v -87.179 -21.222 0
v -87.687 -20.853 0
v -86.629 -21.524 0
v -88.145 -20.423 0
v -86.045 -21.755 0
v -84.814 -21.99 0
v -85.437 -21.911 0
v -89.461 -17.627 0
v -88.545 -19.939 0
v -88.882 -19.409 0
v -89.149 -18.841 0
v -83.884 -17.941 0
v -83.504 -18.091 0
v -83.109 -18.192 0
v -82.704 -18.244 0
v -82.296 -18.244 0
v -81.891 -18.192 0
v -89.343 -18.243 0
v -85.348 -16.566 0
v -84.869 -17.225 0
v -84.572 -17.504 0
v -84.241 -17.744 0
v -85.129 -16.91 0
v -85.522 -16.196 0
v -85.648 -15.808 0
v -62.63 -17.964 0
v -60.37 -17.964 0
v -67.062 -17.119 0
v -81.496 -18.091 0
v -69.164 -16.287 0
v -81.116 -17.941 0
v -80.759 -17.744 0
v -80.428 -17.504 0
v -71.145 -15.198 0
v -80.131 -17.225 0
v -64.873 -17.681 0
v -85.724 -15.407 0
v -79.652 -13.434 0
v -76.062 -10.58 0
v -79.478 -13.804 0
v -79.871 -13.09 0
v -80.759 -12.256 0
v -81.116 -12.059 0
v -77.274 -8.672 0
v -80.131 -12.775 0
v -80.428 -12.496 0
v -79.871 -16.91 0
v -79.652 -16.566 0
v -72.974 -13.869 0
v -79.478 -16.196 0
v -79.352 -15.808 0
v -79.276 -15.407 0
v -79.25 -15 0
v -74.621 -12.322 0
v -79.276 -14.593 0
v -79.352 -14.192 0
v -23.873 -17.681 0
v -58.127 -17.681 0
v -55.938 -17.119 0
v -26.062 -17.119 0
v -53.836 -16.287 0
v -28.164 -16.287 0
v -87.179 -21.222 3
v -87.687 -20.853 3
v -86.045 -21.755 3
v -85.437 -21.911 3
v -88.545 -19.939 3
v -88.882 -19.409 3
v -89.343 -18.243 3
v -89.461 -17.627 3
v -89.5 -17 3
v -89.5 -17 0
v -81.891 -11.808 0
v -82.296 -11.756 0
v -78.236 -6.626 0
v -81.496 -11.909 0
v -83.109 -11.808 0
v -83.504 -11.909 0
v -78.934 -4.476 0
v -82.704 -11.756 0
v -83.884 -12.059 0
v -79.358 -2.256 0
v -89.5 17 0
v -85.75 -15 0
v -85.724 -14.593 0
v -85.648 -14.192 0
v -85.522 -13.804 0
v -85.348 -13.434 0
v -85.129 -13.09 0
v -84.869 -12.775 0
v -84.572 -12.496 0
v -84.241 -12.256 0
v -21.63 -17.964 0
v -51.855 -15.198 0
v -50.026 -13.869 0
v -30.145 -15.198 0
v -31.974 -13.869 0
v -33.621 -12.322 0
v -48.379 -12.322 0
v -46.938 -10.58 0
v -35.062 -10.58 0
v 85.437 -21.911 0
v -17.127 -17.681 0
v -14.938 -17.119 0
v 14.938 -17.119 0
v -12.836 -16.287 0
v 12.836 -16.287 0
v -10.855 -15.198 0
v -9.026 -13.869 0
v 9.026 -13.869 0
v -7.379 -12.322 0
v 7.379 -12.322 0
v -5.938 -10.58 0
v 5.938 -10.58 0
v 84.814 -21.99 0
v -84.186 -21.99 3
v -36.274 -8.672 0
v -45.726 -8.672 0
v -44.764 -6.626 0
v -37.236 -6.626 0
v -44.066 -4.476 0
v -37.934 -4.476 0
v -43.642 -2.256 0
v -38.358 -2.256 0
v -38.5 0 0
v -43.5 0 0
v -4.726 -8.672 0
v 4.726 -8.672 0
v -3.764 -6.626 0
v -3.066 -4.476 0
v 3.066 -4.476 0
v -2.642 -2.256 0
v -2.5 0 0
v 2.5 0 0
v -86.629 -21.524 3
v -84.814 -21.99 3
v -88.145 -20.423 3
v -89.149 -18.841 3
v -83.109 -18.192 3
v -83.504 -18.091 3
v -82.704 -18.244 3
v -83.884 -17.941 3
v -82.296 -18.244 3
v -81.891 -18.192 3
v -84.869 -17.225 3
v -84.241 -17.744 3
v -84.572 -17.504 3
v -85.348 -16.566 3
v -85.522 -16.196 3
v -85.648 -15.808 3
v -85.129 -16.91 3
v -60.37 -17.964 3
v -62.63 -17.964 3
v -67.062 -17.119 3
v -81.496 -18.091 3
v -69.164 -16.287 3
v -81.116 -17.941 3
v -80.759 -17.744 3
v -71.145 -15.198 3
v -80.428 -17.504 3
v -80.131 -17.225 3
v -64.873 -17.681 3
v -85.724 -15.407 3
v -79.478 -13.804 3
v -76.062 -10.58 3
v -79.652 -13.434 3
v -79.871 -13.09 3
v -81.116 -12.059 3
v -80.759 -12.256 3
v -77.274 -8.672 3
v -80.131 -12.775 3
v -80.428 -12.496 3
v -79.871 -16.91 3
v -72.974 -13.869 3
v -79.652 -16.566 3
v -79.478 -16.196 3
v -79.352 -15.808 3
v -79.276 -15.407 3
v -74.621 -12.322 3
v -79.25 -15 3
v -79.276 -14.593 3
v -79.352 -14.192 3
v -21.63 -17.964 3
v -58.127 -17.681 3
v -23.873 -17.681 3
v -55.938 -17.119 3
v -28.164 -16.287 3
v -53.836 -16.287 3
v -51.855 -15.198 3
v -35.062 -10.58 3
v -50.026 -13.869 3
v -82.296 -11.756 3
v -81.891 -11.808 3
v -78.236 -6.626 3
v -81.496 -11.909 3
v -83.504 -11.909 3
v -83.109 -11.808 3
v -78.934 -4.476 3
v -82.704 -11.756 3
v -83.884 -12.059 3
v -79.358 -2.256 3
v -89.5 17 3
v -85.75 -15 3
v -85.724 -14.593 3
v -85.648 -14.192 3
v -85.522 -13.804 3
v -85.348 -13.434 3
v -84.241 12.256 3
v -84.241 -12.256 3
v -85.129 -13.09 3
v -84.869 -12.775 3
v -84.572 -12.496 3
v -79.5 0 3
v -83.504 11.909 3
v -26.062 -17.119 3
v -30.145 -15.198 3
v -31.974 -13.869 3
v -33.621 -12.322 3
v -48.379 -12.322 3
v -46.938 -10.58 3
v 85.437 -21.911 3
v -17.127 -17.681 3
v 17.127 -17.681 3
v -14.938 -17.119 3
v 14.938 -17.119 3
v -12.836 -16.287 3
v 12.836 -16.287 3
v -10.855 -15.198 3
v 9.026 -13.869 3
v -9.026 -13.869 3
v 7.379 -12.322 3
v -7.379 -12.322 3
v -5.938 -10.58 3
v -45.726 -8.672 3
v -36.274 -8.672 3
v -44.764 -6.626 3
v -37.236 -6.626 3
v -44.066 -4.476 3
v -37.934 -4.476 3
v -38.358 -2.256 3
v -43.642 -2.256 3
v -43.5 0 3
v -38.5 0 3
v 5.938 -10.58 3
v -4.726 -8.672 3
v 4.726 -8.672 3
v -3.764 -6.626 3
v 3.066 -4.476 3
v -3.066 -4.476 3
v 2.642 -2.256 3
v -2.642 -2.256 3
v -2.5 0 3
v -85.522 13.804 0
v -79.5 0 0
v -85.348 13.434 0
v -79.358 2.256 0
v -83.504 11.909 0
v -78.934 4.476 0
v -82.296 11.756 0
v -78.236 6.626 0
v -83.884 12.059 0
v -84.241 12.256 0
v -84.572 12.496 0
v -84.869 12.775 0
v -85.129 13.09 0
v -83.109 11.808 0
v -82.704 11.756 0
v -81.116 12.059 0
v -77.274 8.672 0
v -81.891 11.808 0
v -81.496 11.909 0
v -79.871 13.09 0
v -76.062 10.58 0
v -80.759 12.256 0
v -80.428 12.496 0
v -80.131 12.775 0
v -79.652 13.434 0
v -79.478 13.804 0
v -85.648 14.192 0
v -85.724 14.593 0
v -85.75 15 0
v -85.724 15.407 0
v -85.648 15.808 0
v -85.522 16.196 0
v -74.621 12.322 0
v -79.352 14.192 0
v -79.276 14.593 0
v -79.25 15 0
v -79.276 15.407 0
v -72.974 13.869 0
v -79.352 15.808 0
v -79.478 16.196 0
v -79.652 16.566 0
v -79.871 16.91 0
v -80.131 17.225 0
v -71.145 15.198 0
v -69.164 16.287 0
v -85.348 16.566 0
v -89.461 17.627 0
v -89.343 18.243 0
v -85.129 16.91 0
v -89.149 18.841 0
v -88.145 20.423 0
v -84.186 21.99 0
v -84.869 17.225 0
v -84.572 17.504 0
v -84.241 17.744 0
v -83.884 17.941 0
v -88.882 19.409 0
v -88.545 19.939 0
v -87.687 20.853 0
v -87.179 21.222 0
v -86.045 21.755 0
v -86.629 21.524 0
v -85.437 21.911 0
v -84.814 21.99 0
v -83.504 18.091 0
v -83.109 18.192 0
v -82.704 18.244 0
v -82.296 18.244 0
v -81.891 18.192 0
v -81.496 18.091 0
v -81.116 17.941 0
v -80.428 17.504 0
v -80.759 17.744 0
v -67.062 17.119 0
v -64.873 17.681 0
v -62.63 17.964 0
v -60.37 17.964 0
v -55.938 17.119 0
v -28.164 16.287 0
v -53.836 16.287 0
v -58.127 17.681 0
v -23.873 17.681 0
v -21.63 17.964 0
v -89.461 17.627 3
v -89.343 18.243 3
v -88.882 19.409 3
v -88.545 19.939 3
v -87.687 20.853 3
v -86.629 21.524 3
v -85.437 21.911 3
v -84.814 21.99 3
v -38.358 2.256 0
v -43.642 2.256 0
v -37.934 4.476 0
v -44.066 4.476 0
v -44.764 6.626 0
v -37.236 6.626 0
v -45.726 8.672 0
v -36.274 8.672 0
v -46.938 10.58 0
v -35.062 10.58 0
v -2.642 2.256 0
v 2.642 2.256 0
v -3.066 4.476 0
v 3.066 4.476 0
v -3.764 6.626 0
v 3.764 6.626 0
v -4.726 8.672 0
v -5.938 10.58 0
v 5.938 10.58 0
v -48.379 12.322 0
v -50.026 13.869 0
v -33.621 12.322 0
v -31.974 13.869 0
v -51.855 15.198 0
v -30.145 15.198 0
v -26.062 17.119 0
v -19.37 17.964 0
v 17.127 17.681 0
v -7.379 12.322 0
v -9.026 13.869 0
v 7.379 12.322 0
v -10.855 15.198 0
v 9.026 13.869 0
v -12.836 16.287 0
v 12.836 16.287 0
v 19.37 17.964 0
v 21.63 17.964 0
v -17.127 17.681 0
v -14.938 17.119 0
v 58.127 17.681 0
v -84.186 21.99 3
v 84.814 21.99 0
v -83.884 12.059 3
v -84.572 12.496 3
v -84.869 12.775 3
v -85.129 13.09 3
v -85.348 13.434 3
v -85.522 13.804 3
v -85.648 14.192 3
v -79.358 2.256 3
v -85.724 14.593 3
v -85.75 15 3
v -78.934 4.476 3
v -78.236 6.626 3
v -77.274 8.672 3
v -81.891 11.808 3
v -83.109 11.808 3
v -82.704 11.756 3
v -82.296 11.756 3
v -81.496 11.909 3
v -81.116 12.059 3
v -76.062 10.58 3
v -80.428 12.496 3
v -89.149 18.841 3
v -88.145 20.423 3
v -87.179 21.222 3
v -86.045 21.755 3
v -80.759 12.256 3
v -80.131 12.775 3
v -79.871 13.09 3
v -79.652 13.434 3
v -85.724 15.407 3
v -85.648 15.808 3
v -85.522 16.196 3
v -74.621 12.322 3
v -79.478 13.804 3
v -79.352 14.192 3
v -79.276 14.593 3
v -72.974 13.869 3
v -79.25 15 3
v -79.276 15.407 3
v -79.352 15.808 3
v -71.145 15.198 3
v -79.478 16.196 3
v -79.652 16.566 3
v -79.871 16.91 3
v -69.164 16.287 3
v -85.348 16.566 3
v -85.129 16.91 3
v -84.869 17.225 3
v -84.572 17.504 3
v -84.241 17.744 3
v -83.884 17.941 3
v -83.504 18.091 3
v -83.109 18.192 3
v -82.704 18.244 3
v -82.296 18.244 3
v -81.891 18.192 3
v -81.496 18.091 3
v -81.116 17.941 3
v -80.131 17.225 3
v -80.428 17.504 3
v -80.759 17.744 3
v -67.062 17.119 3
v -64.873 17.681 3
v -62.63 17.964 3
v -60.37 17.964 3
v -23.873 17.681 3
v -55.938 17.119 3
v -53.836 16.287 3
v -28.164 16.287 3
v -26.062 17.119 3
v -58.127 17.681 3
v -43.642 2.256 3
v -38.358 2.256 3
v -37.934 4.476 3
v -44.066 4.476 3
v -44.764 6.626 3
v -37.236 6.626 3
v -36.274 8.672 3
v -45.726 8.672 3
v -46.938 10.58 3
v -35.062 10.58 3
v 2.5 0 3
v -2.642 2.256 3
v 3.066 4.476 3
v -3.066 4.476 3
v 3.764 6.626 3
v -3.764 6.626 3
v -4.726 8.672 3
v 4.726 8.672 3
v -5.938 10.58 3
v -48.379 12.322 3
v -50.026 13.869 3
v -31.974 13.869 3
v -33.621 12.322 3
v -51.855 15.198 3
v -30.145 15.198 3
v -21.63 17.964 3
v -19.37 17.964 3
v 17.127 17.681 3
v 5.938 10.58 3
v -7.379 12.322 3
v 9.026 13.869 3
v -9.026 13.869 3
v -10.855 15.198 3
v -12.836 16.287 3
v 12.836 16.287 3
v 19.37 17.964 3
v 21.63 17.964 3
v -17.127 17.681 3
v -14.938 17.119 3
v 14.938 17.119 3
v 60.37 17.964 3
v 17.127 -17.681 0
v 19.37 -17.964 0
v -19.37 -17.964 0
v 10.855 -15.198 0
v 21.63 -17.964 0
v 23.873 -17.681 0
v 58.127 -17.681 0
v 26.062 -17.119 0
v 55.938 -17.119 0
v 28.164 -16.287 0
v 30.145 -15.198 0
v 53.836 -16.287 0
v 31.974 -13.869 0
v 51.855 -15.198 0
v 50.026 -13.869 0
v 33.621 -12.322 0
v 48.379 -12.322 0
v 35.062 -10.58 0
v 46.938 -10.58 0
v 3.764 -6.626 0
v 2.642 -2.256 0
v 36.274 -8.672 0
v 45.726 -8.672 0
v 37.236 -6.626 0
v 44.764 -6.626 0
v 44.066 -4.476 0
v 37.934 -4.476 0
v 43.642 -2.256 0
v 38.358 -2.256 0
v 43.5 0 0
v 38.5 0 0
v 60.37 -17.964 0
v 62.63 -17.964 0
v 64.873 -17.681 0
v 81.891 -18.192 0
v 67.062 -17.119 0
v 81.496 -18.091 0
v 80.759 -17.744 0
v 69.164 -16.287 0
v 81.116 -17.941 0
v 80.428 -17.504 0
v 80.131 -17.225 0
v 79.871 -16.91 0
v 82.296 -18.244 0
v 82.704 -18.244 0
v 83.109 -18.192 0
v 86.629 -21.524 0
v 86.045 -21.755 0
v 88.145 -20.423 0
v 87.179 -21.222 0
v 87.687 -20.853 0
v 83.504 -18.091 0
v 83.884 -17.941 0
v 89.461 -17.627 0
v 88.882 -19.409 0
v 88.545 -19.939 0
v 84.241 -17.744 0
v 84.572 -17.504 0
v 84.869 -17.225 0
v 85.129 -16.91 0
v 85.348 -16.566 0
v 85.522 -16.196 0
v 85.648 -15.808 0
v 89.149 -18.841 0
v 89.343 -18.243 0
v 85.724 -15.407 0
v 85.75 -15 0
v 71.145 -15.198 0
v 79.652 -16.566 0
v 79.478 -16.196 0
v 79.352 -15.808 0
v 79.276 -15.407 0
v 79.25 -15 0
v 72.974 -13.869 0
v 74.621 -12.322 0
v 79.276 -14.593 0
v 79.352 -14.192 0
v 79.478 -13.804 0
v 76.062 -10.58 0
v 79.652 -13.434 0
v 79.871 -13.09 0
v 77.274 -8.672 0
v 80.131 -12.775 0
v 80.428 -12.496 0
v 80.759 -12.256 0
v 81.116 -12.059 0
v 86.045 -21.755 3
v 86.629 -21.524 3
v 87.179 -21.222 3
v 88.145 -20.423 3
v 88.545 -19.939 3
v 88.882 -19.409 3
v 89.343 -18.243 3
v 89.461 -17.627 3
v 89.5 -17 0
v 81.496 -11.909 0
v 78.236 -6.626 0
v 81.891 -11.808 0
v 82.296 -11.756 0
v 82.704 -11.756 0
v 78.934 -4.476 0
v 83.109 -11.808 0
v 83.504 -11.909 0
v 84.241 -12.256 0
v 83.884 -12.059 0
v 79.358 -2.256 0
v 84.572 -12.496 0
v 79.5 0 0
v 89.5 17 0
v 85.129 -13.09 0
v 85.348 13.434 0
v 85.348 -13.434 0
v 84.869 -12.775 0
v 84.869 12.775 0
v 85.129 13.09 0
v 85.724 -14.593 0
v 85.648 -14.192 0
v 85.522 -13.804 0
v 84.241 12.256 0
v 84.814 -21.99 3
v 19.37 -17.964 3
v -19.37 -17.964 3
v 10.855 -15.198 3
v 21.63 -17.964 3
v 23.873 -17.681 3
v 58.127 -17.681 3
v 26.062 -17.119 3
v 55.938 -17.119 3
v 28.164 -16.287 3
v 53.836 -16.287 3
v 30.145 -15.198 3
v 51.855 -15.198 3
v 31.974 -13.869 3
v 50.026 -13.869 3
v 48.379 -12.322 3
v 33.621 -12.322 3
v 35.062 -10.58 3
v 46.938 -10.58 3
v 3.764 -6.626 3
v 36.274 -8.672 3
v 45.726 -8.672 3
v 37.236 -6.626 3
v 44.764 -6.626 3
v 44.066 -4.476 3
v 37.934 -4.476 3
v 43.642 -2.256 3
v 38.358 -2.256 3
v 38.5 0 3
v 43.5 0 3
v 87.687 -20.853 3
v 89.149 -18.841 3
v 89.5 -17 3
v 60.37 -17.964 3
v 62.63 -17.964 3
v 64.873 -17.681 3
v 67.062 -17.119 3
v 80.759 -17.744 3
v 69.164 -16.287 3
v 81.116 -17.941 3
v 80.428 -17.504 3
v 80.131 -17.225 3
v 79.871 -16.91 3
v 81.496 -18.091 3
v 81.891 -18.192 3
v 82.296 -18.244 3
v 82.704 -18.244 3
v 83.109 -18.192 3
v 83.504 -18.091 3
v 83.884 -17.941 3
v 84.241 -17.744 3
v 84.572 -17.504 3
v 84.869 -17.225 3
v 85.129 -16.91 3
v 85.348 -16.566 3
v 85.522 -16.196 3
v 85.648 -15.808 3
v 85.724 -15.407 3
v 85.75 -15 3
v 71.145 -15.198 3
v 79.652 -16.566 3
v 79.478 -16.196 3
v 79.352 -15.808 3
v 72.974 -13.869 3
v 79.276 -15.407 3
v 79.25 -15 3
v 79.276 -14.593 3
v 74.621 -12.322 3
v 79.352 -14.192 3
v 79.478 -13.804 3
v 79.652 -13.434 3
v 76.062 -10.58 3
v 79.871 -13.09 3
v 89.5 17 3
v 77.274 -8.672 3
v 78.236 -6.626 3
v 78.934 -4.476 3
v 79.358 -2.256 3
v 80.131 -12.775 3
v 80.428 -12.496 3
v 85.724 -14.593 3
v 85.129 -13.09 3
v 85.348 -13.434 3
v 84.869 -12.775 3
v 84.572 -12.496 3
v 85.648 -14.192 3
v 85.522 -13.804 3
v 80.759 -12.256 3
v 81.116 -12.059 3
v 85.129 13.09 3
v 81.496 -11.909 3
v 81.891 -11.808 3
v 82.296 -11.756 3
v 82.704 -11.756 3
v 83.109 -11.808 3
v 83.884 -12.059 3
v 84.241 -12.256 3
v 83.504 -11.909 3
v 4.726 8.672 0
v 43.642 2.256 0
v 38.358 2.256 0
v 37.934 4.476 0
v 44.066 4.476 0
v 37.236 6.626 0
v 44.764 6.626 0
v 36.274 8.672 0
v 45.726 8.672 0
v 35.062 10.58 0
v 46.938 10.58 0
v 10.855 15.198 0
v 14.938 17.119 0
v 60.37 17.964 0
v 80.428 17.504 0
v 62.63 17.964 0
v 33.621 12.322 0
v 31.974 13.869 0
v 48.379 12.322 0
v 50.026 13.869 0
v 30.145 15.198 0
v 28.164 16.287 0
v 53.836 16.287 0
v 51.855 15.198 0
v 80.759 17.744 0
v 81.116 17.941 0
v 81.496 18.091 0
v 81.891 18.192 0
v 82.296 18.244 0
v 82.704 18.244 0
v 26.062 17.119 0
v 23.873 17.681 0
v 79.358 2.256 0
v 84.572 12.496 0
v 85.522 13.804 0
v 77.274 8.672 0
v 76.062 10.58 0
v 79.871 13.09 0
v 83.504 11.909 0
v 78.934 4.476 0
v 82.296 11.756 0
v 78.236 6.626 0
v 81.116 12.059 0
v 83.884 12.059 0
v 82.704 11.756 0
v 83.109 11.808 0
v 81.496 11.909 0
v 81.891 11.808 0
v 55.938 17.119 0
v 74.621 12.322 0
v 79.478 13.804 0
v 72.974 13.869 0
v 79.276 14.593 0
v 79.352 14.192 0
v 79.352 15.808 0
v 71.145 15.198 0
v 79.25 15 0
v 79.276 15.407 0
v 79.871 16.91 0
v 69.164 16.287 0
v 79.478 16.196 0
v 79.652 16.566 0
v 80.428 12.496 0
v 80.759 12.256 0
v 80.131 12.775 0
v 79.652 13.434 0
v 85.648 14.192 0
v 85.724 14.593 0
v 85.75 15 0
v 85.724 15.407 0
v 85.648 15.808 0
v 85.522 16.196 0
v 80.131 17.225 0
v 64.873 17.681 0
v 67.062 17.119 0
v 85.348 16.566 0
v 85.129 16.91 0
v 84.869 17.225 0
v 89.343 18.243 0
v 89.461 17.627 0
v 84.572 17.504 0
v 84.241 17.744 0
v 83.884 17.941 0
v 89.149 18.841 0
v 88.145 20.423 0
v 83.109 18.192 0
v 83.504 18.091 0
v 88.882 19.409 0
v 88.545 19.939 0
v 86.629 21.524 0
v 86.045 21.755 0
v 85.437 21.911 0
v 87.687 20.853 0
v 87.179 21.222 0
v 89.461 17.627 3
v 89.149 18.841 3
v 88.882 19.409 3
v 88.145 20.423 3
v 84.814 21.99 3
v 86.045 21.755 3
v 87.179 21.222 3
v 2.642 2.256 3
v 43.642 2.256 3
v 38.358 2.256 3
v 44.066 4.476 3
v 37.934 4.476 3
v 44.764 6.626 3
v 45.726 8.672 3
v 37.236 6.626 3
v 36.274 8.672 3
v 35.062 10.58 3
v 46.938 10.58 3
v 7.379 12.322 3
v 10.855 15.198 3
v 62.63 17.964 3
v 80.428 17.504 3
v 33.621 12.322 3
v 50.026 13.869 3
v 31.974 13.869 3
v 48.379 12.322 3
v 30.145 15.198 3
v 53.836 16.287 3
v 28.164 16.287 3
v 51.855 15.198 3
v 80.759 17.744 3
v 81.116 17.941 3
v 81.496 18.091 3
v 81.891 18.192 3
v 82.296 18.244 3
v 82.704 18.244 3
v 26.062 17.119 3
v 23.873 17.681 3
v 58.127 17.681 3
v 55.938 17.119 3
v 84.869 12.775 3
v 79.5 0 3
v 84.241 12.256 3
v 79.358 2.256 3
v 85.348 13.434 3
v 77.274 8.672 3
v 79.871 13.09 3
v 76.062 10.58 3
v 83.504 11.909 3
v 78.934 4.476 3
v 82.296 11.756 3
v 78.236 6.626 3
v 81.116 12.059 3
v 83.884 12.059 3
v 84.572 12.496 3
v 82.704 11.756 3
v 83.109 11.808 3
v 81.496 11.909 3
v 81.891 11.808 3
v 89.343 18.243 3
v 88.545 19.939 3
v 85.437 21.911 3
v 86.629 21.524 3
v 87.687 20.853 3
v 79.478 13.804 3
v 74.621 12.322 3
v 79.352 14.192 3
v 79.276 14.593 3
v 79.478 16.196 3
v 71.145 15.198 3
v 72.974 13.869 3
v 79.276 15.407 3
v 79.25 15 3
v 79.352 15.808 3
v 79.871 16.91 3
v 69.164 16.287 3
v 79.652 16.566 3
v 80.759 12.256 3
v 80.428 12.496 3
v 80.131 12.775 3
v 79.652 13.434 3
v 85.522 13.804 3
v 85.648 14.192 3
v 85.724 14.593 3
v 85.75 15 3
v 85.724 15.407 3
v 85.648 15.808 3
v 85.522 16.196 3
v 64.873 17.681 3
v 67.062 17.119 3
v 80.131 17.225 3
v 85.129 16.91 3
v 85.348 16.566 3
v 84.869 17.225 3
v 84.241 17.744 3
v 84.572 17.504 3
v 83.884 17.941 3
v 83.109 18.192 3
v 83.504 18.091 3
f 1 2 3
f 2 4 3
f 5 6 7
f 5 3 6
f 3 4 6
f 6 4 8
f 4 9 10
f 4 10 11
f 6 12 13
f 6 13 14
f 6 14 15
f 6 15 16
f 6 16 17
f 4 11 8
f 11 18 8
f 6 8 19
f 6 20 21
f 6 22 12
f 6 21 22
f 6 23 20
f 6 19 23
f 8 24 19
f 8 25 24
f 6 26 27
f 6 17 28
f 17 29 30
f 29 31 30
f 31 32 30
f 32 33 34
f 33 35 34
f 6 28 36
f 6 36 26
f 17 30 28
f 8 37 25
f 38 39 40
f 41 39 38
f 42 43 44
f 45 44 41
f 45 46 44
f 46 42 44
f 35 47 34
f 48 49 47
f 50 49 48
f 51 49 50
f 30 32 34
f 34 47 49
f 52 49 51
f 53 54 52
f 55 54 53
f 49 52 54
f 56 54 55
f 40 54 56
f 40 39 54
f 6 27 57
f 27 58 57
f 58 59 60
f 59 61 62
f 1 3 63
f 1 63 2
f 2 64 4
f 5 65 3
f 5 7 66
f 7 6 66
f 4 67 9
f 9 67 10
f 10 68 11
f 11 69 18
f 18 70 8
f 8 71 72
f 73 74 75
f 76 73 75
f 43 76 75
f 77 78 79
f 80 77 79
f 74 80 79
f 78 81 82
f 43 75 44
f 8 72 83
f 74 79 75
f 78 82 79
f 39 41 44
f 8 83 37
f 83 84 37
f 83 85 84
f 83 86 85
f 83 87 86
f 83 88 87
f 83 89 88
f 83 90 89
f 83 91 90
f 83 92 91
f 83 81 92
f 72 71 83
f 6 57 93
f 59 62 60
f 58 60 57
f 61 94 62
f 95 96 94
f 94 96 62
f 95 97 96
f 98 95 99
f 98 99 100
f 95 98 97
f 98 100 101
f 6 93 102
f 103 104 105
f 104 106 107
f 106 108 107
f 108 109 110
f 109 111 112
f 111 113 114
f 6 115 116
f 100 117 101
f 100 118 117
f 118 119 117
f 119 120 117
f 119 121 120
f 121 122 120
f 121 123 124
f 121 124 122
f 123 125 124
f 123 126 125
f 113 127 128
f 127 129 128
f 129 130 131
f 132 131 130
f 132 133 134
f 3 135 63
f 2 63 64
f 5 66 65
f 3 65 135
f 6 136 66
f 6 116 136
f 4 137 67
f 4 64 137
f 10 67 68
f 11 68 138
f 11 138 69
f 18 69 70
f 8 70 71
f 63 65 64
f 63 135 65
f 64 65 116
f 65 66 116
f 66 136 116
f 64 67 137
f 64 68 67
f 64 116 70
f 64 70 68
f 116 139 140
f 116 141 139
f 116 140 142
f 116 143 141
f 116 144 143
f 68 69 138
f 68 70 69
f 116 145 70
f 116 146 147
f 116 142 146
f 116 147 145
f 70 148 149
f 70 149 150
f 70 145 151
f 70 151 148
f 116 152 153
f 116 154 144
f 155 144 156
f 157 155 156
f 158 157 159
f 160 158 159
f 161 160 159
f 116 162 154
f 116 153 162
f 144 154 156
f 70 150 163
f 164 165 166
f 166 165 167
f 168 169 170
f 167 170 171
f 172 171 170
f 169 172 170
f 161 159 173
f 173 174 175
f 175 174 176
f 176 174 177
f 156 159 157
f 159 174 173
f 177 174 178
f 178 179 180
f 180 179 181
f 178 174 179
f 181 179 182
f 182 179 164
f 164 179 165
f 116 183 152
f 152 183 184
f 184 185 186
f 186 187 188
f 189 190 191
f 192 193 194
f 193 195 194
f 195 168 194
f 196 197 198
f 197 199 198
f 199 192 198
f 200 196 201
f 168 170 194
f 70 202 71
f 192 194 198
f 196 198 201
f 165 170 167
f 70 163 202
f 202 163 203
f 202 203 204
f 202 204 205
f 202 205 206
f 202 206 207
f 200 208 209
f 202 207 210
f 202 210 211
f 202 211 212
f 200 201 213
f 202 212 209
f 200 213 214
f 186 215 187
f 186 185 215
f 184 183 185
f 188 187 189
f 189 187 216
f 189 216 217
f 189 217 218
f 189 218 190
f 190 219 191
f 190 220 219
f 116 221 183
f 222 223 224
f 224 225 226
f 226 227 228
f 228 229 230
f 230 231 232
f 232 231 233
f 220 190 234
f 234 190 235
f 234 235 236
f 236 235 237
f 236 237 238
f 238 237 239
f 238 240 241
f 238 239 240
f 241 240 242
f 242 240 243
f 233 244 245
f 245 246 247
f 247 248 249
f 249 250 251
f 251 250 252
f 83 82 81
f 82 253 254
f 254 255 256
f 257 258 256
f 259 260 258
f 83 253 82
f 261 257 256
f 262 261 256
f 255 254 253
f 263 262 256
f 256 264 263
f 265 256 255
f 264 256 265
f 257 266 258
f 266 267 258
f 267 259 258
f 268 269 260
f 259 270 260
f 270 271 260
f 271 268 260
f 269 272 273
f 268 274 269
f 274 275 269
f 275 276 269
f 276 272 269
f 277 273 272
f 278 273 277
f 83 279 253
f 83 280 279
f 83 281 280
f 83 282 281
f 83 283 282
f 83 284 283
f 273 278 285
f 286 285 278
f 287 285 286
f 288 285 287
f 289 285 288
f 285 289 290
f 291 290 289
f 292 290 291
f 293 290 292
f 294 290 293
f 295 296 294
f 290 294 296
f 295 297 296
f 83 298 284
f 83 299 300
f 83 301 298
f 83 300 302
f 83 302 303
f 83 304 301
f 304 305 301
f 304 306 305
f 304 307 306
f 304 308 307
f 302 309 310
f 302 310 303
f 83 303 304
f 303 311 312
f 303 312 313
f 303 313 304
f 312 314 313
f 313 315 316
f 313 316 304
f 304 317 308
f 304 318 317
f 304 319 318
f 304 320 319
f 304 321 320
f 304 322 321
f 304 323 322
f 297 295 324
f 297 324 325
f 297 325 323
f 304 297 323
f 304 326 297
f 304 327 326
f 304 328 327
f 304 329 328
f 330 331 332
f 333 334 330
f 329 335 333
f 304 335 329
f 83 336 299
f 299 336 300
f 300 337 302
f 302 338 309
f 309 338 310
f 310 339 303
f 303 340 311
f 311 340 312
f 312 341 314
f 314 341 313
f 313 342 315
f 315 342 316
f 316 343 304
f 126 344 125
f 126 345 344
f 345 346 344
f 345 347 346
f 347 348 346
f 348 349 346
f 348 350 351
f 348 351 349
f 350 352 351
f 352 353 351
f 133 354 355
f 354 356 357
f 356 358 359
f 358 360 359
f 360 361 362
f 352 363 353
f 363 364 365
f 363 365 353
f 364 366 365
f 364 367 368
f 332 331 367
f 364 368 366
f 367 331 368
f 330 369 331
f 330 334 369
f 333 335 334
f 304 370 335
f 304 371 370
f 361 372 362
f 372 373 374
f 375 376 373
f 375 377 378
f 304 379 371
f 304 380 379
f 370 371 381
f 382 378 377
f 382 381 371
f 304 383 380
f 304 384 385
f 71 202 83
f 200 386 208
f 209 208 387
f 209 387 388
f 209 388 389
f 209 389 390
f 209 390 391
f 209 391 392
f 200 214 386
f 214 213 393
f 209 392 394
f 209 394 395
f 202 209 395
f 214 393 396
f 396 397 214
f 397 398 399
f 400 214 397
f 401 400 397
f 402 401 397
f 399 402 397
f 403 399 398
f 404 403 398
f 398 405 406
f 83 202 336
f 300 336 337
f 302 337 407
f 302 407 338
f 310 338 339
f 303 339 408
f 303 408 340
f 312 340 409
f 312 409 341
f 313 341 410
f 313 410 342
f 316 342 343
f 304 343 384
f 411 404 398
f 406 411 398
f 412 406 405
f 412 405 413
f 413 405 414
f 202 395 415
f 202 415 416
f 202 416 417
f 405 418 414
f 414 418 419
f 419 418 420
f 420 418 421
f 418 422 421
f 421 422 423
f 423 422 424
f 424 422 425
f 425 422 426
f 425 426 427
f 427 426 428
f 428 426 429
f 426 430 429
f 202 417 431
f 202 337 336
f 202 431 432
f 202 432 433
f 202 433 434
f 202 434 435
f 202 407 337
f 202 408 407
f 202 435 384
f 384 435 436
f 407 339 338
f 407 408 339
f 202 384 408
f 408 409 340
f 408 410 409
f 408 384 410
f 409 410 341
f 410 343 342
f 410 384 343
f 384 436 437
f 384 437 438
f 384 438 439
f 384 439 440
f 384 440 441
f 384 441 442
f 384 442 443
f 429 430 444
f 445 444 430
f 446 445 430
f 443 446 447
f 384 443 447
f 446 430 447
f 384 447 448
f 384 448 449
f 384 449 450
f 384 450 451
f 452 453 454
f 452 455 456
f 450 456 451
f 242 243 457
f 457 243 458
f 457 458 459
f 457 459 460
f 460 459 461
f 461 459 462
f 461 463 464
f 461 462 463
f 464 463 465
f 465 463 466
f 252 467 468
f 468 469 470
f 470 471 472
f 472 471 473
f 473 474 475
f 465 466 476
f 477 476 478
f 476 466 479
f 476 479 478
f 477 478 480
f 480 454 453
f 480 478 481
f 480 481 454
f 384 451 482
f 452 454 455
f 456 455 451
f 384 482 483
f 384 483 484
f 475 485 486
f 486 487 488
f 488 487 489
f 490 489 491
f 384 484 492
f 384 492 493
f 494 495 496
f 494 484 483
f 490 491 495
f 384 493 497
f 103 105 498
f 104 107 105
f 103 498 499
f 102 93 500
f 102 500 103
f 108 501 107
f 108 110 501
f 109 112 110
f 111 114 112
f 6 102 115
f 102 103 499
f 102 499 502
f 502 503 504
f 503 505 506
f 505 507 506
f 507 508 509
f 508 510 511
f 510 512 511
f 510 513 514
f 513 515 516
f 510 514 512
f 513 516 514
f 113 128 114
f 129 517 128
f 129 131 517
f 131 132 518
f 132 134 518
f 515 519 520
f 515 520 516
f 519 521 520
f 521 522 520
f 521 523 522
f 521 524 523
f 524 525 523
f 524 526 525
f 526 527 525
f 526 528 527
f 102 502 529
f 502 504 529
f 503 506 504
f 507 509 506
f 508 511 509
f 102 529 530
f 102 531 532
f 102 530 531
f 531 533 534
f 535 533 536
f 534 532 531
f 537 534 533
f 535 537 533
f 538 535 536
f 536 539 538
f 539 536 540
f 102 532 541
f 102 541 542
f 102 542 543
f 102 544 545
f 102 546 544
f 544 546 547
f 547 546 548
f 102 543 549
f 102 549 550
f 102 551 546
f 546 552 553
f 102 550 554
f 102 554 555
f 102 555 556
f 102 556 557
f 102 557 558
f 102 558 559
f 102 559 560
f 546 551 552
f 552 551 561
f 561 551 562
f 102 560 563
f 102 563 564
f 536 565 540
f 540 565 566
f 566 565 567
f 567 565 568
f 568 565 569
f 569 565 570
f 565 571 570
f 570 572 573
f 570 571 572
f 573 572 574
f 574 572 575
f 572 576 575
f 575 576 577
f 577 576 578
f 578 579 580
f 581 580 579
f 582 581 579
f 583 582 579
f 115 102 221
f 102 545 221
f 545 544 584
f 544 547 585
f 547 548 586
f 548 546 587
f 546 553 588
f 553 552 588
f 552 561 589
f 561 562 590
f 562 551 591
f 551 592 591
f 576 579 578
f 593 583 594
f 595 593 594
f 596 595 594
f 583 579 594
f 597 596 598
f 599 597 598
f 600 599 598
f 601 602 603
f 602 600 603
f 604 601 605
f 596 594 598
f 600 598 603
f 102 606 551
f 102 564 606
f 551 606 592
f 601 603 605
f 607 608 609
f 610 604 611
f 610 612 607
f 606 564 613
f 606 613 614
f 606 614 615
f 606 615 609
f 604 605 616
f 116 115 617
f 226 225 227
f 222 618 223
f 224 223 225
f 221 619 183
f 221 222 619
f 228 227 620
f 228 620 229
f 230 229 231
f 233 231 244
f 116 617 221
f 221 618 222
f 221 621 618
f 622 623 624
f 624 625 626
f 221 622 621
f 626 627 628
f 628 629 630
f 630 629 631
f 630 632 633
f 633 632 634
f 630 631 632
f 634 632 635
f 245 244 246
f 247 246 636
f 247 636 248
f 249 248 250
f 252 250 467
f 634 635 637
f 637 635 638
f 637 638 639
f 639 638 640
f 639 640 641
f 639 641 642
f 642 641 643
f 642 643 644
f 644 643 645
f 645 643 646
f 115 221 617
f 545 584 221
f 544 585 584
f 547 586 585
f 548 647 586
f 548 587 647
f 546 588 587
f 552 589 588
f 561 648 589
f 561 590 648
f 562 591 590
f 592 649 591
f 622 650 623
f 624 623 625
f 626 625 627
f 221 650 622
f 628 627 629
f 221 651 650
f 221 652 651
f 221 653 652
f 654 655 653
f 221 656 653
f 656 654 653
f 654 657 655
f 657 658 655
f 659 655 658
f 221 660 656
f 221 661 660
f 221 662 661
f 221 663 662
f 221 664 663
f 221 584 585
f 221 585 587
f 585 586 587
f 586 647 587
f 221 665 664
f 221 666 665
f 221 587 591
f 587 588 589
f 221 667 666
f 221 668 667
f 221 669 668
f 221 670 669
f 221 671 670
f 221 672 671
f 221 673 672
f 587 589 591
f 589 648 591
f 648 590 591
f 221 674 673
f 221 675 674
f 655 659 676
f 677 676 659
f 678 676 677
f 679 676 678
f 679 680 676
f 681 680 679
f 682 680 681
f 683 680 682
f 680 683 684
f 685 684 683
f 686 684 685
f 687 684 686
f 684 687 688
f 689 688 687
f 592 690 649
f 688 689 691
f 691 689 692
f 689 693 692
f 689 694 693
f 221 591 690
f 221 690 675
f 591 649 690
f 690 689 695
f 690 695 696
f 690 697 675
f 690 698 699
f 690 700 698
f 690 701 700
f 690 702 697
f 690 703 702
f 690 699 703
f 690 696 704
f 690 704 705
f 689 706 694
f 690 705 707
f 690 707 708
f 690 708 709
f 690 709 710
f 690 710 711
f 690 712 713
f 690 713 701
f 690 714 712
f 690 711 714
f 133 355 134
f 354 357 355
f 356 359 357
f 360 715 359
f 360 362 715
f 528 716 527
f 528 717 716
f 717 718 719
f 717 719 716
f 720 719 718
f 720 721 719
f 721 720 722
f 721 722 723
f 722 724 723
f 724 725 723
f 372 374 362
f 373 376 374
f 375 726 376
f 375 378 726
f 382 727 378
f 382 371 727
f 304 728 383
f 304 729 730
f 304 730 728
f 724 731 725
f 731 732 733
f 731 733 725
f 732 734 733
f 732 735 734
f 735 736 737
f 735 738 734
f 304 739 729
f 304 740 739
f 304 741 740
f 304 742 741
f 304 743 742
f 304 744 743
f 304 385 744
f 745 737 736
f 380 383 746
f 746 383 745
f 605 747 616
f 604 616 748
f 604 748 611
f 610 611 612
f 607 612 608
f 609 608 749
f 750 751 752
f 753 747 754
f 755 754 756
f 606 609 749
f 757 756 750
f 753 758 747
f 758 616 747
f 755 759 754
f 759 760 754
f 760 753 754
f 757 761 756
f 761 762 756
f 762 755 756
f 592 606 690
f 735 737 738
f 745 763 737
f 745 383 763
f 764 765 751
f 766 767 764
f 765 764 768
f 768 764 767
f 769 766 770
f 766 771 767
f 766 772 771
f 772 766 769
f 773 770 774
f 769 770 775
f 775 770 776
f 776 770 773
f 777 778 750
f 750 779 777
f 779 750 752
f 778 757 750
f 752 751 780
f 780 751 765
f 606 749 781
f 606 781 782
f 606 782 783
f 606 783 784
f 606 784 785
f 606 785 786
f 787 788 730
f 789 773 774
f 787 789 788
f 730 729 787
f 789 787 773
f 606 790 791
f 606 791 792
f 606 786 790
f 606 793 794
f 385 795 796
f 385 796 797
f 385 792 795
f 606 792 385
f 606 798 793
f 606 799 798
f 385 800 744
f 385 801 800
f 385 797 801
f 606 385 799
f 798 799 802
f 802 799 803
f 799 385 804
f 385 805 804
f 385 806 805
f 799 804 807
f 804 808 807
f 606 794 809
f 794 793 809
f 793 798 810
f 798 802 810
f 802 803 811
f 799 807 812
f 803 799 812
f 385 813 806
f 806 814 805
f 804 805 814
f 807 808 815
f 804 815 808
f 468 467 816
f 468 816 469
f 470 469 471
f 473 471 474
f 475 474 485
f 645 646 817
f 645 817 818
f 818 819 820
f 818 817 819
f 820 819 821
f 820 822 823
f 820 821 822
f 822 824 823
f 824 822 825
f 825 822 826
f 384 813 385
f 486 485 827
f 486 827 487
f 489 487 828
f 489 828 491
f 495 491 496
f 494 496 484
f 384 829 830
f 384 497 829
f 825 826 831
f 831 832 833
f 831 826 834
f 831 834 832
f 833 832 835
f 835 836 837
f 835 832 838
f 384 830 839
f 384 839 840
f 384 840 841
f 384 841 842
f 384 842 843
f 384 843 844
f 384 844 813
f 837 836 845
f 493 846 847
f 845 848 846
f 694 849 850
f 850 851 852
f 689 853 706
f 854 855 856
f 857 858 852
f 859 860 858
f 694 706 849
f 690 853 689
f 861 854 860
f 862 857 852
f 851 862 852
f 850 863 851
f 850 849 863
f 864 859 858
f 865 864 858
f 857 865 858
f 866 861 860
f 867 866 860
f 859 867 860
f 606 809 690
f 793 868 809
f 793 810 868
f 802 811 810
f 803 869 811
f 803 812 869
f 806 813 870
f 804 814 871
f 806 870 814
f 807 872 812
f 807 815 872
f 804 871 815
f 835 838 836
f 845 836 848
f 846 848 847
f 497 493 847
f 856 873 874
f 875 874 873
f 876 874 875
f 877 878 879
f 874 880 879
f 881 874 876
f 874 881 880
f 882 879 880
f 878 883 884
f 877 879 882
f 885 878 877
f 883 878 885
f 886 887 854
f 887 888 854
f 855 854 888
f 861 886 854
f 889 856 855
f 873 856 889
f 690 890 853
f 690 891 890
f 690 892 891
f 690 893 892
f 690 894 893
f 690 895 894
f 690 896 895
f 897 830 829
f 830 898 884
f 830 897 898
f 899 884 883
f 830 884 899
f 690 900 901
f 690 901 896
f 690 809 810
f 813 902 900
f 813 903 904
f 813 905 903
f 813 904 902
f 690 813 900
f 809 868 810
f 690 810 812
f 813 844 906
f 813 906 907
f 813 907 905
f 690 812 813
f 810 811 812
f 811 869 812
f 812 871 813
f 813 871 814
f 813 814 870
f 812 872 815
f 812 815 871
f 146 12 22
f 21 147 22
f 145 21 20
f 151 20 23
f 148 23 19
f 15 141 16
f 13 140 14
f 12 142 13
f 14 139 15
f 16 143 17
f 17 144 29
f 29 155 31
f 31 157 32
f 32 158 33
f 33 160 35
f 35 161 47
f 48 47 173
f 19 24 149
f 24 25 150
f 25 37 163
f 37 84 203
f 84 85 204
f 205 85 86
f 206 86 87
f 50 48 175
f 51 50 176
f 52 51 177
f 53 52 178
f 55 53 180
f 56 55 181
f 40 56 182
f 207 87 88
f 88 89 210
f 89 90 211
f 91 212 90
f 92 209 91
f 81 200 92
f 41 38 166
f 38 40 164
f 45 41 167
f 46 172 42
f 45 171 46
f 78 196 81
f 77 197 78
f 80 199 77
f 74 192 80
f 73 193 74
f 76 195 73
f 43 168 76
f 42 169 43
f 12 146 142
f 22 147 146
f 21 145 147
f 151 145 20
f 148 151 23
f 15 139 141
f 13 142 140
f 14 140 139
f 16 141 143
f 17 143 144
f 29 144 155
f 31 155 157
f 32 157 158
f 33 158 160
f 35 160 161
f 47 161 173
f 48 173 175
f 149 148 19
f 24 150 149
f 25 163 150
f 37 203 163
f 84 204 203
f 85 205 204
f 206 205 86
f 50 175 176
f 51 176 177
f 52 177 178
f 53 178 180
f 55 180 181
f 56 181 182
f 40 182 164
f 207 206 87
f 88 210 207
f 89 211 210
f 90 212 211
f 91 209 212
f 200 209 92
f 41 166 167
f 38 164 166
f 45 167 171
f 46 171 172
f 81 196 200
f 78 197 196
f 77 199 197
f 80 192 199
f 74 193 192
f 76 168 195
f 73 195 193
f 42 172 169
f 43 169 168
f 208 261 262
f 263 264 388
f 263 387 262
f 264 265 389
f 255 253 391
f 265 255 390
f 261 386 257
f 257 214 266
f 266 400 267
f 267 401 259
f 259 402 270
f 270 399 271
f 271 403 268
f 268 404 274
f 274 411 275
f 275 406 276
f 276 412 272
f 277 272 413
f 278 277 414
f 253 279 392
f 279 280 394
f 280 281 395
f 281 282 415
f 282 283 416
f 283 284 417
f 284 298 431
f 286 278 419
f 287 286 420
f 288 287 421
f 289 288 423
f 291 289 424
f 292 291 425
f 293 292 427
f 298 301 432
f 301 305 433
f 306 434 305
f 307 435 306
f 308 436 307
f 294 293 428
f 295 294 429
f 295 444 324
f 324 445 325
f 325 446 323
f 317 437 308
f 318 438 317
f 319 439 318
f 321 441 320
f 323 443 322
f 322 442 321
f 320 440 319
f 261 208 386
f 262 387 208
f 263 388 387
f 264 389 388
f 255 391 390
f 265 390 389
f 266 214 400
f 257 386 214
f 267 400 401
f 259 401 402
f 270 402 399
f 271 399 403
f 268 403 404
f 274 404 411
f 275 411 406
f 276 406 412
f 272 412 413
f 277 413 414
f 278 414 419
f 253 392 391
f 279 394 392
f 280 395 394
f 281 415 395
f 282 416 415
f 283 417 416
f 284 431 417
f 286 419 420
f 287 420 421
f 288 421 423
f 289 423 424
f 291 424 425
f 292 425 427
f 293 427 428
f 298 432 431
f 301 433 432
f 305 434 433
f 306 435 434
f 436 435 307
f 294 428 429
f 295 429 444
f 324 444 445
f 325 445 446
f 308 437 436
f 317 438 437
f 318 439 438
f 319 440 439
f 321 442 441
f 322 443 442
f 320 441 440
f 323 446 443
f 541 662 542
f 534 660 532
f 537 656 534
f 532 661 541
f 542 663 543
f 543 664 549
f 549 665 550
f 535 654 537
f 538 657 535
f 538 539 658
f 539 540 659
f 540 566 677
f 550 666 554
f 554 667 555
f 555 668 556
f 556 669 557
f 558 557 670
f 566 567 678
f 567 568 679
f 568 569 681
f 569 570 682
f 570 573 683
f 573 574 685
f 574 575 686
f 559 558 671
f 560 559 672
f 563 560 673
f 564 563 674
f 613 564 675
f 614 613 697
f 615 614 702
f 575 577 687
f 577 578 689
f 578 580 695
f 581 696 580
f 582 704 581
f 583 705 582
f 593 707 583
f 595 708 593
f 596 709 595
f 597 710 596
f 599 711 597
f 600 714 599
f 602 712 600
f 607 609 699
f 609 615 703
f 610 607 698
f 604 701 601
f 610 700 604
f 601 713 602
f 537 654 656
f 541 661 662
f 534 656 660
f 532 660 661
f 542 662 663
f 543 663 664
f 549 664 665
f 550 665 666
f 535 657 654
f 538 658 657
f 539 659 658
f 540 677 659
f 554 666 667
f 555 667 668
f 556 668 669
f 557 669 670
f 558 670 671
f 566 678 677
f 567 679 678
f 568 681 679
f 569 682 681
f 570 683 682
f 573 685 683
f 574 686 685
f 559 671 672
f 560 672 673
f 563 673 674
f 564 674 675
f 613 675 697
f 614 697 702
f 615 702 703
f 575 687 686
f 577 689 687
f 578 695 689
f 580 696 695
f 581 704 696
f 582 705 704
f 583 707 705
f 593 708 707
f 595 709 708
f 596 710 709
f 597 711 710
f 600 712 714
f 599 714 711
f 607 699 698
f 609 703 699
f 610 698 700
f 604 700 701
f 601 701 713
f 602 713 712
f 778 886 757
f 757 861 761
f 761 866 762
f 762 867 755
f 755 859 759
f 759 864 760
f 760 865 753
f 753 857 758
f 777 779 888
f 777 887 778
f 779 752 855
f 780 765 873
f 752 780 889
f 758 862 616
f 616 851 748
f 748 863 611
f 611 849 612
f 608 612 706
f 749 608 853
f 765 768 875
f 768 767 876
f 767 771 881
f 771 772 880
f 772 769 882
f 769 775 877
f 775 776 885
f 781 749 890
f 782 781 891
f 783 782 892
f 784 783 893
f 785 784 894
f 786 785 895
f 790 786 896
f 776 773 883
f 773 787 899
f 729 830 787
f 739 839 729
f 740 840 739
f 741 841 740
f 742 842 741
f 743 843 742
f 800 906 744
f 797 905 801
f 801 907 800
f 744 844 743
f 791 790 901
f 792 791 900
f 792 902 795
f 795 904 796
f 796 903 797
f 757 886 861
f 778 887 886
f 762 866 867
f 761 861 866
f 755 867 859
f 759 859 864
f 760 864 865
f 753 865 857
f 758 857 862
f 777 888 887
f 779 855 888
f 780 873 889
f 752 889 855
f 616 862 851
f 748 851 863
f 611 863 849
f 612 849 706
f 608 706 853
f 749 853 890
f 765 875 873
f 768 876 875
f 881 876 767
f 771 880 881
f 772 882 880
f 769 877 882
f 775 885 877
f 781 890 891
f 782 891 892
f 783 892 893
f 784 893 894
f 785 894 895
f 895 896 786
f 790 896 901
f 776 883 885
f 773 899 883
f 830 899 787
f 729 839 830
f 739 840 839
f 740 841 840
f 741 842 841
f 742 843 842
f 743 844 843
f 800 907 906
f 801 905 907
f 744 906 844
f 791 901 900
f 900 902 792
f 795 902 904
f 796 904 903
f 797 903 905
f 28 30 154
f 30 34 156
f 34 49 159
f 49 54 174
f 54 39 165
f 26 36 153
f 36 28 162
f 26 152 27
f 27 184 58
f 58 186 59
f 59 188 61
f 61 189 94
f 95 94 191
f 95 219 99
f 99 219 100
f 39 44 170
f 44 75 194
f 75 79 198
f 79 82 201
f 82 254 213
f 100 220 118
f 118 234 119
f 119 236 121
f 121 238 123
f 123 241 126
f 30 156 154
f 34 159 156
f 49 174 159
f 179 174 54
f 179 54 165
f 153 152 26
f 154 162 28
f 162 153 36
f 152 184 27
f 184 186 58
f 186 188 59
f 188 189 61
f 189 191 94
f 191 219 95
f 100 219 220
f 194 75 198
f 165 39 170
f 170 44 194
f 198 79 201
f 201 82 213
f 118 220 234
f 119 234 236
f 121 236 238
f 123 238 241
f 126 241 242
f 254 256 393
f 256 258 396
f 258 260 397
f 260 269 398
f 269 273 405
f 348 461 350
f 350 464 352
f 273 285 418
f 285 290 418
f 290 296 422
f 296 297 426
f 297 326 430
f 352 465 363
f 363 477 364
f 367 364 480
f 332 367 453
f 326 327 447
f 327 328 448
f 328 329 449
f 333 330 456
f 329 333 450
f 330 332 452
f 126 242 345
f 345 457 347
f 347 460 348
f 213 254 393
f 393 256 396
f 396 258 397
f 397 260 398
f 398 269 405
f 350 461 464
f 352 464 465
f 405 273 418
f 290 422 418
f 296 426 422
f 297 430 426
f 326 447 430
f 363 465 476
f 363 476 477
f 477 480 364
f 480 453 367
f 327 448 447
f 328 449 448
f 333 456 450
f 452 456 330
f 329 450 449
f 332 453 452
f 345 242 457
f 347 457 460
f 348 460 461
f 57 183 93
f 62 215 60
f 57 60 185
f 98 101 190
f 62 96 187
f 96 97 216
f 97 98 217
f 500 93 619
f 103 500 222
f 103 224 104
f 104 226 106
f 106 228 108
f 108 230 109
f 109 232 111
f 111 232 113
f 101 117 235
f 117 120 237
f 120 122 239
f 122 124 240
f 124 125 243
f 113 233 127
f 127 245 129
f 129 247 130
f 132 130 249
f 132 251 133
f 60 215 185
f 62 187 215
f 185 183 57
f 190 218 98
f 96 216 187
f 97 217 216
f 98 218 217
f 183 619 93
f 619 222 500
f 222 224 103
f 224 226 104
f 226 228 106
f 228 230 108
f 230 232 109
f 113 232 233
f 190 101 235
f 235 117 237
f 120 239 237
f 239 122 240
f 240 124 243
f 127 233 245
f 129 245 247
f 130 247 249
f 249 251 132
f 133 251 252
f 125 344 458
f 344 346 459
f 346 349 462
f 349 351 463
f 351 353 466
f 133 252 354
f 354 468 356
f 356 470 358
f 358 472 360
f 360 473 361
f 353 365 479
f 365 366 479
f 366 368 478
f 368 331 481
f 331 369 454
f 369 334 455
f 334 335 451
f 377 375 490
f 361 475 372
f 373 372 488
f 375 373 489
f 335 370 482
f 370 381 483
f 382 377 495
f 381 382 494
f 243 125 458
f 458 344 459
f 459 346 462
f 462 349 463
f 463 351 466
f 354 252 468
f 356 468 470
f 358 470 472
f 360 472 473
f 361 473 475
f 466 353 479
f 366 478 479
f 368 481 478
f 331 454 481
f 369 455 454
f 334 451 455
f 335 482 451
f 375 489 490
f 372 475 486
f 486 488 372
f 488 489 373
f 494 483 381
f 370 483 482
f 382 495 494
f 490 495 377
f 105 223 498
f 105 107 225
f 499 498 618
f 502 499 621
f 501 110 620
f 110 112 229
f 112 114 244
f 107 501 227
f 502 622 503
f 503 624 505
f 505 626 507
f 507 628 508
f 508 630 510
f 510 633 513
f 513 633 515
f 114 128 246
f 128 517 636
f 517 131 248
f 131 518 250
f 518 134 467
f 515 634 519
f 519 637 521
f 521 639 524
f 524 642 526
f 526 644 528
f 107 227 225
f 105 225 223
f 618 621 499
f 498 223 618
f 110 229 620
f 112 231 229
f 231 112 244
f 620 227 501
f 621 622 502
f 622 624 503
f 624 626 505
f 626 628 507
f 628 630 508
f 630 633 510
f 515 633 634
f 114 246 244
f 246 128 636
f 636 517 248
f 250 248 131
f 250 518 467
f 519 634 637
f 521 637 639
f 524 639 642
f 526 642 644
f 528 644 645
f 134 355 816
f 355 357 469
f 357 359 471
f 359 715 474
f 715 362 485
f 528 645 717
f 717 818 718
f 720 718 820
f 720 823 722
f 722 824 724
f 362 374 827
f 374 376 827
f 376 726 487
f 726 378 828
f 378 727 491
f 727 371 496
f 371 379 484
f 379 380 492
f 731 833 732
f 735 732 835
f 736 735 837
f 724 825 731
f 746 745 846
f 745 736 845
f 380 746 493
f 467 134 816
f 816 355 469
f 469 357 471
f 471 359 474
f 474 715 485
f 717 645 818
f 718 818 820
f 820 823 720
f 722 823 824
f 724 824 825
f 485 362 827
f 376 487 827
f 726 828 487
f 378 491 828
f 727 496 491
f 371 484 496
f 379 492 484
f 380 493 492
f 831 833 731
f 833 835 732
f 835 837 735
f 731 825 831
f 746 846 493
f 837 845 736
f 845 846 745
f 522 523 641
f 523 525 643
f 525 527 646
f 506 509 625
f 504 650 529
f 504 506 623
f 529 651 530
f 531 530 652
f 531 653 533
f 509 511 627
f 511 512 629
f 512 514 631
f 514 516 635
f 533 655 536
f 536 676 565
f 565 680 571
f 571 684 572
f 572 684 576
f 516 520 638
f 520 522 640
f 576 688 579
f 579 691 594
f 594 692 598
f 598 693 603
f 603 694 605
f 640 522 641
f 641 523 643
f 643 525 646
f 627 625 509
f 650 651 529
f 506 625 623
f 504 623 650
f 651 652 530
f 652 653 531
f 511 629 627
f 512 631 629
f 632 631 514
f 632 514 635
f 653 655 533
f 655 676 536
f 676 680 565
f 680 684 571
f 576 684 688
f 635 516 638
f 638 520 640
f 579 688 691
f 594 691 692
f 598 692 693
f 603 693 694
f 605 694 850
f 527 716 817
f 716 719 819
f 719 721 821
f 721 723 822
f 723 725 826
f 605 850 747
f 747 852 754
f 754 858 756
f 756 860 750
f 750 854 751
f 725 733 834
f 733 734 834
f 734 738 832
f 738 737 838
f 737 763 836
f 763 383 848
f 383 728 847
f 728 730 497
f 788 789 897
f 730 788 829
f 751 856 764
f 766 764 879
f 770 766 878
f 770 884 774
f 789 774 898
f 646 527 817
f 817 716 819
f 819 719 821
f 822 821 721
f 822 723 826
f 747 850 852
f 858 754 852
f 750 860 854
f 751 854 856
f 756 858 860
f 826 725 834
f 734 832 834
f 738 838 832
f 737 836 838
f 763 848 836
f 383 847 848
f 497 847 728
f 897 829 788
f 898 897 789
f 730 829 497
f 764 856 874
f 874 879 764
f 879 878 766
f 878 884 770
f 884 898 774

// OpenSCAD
$fn = 50;

difference() {
	union() {
		hull() {
			translate(v = [-84.5, 17.0, 0]) {
				cylinder(h = 3, r = 5);
			}
			translate(v = [84.5, 17.0, 0]) {
				cylinder(h = 3, r = 5);
			}
			translate(v = [-84.5, -17.0, 0]) {
				cylinder(h = 3, r = 5);
			}
			translate(v = [84.5, -17.0, 0]) {
				cylinder(h = 3, r = 5);
			}
		}
	}
	union() {
		translate(v = [-82.5, -15.0, -100.0]) {
			cylinder(h = 200, r = 3.25);
		}
		translate(v = [-82.5, 15.0, -100.0]) {
			cylinder(h = 200, r = 3.25);
		}
		translate(v = [82.5, -15.0, -100.0]) {
			cylinder(h = 200, r = 3.25);
		}
		translate(v = [82.5, 15.0, -100.0]) {
			cylinder(h = 200, r = 3.25);
		}
		translate(v = [-82.5, -15.0, -100.0]) {
			cylinder(h = 200, r = 1.8);
		}
		translate(v = [-82.5, 15.0, -100.0]) {
			cylinder(h = 200, r = 1.8);
		}
		translate(v = [82.5, -15.0, -100.0]) {
			cylinder(h = 200, r = 1.8);
		}
		translate(v = [82.5, 15.0, -100.0]) {
			cylinder(h = 200, r = 1.8);
		}
		translate(v = [-61.5, 0, 0.0]) {
			cylinder(h = 3, r = 18.0);
		}
		translate(v = [-20.5, 0, 0.0]) {
			cylinder(h = 3, r = 18.0);
		}
		translate(v = [20.5, 0, 0.0]) {
			cylinder(h = 3, r = 18.0);
		}
		translate(v = [61.5, 0, 0.0]) {
			cylinder(h = 3, r = 18.0);
		}
	}
}
